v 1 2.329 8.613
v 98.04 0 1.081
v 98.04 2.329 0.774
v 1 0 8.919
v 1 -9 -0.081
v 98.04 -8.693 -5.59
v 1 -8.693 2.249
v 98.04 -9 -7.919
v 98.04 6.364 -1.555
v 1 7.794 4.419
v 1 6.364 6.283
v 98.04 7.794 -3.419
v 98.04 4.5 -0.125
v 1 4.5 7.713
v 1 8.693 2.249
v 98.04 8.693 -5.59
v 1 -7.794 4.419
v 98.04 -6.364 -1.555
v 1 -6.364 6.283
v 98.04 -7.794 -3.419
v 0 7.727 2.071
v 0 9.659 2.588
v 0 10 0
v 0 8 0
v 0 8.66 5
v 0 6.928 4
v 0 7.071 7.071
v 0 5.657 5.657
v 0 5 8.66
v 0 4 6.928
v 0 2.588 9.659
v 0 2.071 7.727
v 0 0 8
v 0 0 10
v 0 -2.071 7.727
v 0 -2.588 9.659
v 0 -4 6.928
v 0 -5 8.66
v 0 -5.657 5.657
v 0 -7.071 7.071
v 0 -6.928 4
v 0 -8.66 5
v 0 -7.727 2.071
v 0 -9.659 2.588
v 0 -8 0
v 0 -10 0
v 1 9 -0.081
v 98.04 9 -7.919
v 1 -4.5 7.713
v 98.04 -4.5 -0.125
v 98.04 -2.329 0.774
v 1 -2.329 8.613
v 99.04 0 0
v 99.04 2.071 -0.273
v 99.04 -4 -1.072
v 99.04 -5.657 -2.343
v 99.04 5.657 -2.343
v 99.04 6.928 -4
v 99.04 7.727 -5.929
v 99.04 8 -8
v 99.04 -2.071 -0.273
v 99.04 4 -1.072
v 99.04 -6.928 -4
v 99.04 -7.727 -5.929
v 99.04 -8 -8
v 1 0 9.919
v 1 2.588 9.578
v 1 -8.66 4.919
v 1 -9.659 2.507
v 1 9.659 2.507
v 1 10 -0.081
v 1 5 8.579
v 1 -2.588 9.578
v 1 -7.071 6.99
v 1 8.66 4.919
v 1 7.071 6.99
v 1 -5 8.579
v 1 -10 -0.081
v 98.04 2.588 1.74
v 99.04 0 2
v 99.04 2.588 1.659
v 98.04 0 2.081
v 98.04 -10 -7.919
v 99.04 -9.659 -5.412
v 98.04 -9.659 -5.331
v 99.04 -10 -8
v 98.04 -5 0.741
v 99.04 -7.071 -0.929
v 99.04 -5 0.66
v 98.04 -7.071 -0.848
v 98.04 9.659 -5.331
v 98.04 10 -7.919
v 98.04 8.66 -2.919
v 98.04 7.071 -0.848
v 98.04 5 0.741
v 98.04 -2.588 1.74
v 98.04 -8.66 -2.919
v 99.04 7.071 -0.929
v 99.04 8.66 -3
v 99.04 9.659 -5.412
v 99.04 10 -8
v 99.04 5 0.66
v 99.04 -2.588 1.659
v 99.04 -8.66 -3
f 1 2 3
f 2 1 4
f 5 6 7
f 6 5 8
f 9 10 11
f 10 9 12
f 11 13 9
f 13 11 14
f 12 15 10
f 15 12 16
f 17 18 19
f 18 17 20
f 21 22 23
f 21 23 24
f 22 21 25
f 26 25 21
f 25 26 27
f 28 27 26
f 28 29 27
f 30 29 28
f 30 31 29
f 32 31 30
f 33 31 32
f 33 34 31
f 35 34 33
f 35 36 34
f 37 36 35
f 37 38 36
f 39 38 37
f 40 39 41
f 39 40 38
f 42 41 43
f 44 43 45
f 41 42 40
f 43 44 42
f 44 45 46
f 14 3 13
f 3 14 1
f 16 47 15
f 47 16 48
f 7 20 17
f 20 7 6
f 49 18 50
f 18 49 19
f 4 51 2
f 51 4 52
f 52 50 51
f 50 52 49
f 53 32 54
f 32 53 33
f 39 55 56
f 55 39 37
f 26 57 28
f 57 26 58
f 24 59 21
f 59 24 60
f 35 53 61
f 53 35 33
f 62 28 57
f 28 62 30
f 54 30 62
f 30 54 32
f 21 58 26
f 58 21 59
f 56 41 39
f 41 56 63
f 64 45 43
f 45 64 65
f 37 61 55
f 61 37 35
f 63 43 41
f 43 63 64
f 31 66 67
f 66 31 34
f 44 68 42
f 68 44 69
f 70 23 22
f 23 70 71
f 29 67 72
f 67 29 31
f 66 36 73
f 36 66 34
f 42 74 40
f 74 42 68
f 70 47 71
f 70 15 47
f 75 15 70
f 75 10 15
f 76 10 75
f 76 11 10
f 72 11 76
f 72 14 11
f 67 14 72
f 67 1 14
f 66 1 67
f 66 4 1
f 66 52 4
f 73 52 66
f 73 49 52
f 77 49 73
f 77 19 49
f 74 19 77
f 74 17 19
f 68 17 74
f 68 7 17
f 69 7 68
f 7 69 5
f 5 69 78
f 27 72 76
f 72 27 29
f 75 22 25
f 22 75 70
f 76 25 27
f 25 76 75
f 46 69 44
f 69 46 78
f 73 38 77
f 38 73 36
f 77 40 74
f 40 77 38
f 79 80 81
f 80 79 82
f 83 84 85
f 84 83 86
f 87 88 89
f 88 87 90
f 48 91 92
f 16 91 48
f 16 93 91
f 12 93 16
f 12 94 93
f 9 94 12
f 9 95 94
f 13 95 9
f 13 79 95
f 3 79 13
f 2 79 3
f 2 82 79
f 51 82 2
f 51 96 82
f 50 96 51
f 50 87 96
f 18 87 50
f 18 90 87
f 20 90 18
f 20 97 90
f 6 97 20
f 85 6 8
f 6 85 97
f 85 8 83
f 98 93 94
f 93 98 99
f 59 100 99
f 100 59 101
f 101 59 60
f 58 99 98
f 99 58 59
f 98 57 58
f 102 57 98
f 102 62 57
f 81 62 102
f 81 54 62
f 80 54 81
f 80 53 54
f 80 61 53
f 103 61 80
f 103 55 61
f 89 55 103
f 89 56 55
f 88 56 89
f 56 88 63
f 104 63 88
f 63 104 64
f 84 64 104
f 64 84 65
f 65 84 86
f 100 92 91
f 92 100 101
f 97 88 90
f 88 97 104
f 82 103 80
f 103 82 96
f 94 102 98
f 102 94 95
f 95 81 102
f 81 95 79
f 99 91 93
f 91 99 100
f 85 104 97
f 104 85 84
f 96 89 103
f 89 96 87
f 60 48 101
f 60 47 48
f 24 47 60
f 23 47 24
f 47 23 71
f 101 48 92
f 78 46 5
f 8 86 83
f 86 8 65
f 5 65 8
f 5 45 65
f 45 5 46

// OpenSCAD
// file: ../build_environments.scad
// build_environments.scad: modules to build level sections
//

module pool(diameter=10.0, wall_height=2.0, step_width=3.0, connections=[])
{
    difference() {
        union() {
        difference() {
            cylinder(h=0.5,r1=diameter+step_width,r2=diameter+step_width,$fn=48);
            translate([0,0,-0.1])
                cylinder(h=0.7,r1=diameter,r2=diameter,$fn=48);
        }
        difference() {
            cylinder(h=wall_height,r1=diameter+step_width+1.0,r2=diameter+step_width+1.0,$fn=48);
            translate([0,0,-0.1])
                cylinder(h=wall_height+0.2,r1=diameter+step_width,r2=diameter+step_width,$fn=48);
        }
        }
    
        for (c = connections)
        {
            rotate([0,90,0]) {
                angle = atan2(c[1],c[0]);
                rotate([-angle,0,0]) {
                    cylinder(h=diameter+5.0,r1=c[2],r2=c[2],$fn=48);
                }
            }
        }
    }
}

module straight(length=10.0, width=2.0, dy1=0.0, dy2=0.0, dz=0.0)
{
    dims = [0, 0, 0, 0, 0, (dz/length)];
    matrix = [
        [ 1, dims[0], dims[1], 0 ],
        [ dims[2], 1, dims[4], 0 ],
        [ dims[5], dims[3], 1, 0 ],
        [ 0, 0, 0, 1 ]
    ];
    multmatrix(matrix)
    difference() {
        translate([dy1,0,0])
        union() {
            rotate([0,90,0]) {
                difference() {
                    cylinder(h=(length-dy1-dy2),r1=width+1.0,r2=width+1.0,$fn=24);
                    translate([0,0,-0.1])
                        cylinder(h=(length-dy1-dy2+0.2),r1=width,r2=width,$fn=24);
                }
                difference() {
                    cylinder(h=1.0,r1=width+2.0,r2=width+2.0,$fn=24);
                    translate([0,0,-0.1])
                        cylinder(h=1.2,r1=width,r2=width,$fn=24);
                }
                translate([0,0,(length-dy1-dy2)-1.0]) {
                    difference() {
                        cylinder(h=1.0,r1=width+2.0,r2=width+2.0,$fn=24);
                        translate([0,0,-0.1])
                            cylinder(h=1.2,r1=width,r2=width,$fn=24);
                    }
                }
            }
        }
        translate([0,0,-(2*width+4.0)/2])
            cube([3*length,3*length,2*width+4.0],center=true);
    }
}

module curve(p0=[0,0], center=[0,0], dir=1, angle=0.0, width=2.0)
{
    radius = sqrt((p0[0]-center[0])*(p0[0]-center[0]) + (p0[1]-center[1])*(p0[1]-center[1]));
    if (dir == 0) {
        difference() {
            rotate([0,0,-90])
            difference() {
                rotate_extrude(angle = angle, convexity = 10, $fn=32)
                    translate([radius, 0, 0])
                        circle(r = width+1.0,$fn=24);
                rotate([0,0,-1.0])
                    rotate_extrude(angle = angle+2.0, convexity = 10, $fn=32)
                        translate([radius, 0, 0])
                            circle(r = width,$fn=24);
            }
            translate([0,0,-(2*width+4.0)/2])
                cube([5*radius,5*radius,2*width+4.0],center=true);
        }
    }
    else {
        difference() {
            rotate([0,0,90])
            difference() {
                rotate_extrude(angle = -angle, convexity = 10, $fn=32)
                    translate([radius, 0, 0])
                        circle(r = width+1.0,$fn=24);
                rotate([0,0,1.0])
                    rotate_extrude(angle = -angle-2.0, convexity = 10, $fn=32)
                        translate([radius, 0, 0])
                            circle(r = width,$fn=24);
            }
            translate([0,0,-(2*width+4.0)/2])
                cube([5*radius,5*radius,2*width+4.0],center=true);
        }
    }

}

// test pool
//pool(diameter=12.0000, wall_height=3.0000, step_width=3.0000, connections=[[0.0000,-26.0000,2.0000], [23.6074,0.0000,2.0000]]);

// test straight, slope
//straight(length=26.0000, width=2.0000, dy1=11.8322, dy2=6.7082, dz=0.0000);
//straight(length=29.1549, width=12.0000, dy1=0.0000, dy2=0.0000, dz=-15.0000);

// test curve
//curve(p0=[23.6074, 0.0000], center=[23.6074, 5.0000], dir=0, angle=60.1011, width=2.0000);
//curve(p0=[33.6426, 12.4219], center=[37.9771, 9.9295], dir=1, angle=120.4627, width=2.0000);
// main file
use <../build_environments.scad>;
straight(length=99.0403, width=8.0000, dy1=0.0000, dy2=0.0000, dz=-8.0000);
